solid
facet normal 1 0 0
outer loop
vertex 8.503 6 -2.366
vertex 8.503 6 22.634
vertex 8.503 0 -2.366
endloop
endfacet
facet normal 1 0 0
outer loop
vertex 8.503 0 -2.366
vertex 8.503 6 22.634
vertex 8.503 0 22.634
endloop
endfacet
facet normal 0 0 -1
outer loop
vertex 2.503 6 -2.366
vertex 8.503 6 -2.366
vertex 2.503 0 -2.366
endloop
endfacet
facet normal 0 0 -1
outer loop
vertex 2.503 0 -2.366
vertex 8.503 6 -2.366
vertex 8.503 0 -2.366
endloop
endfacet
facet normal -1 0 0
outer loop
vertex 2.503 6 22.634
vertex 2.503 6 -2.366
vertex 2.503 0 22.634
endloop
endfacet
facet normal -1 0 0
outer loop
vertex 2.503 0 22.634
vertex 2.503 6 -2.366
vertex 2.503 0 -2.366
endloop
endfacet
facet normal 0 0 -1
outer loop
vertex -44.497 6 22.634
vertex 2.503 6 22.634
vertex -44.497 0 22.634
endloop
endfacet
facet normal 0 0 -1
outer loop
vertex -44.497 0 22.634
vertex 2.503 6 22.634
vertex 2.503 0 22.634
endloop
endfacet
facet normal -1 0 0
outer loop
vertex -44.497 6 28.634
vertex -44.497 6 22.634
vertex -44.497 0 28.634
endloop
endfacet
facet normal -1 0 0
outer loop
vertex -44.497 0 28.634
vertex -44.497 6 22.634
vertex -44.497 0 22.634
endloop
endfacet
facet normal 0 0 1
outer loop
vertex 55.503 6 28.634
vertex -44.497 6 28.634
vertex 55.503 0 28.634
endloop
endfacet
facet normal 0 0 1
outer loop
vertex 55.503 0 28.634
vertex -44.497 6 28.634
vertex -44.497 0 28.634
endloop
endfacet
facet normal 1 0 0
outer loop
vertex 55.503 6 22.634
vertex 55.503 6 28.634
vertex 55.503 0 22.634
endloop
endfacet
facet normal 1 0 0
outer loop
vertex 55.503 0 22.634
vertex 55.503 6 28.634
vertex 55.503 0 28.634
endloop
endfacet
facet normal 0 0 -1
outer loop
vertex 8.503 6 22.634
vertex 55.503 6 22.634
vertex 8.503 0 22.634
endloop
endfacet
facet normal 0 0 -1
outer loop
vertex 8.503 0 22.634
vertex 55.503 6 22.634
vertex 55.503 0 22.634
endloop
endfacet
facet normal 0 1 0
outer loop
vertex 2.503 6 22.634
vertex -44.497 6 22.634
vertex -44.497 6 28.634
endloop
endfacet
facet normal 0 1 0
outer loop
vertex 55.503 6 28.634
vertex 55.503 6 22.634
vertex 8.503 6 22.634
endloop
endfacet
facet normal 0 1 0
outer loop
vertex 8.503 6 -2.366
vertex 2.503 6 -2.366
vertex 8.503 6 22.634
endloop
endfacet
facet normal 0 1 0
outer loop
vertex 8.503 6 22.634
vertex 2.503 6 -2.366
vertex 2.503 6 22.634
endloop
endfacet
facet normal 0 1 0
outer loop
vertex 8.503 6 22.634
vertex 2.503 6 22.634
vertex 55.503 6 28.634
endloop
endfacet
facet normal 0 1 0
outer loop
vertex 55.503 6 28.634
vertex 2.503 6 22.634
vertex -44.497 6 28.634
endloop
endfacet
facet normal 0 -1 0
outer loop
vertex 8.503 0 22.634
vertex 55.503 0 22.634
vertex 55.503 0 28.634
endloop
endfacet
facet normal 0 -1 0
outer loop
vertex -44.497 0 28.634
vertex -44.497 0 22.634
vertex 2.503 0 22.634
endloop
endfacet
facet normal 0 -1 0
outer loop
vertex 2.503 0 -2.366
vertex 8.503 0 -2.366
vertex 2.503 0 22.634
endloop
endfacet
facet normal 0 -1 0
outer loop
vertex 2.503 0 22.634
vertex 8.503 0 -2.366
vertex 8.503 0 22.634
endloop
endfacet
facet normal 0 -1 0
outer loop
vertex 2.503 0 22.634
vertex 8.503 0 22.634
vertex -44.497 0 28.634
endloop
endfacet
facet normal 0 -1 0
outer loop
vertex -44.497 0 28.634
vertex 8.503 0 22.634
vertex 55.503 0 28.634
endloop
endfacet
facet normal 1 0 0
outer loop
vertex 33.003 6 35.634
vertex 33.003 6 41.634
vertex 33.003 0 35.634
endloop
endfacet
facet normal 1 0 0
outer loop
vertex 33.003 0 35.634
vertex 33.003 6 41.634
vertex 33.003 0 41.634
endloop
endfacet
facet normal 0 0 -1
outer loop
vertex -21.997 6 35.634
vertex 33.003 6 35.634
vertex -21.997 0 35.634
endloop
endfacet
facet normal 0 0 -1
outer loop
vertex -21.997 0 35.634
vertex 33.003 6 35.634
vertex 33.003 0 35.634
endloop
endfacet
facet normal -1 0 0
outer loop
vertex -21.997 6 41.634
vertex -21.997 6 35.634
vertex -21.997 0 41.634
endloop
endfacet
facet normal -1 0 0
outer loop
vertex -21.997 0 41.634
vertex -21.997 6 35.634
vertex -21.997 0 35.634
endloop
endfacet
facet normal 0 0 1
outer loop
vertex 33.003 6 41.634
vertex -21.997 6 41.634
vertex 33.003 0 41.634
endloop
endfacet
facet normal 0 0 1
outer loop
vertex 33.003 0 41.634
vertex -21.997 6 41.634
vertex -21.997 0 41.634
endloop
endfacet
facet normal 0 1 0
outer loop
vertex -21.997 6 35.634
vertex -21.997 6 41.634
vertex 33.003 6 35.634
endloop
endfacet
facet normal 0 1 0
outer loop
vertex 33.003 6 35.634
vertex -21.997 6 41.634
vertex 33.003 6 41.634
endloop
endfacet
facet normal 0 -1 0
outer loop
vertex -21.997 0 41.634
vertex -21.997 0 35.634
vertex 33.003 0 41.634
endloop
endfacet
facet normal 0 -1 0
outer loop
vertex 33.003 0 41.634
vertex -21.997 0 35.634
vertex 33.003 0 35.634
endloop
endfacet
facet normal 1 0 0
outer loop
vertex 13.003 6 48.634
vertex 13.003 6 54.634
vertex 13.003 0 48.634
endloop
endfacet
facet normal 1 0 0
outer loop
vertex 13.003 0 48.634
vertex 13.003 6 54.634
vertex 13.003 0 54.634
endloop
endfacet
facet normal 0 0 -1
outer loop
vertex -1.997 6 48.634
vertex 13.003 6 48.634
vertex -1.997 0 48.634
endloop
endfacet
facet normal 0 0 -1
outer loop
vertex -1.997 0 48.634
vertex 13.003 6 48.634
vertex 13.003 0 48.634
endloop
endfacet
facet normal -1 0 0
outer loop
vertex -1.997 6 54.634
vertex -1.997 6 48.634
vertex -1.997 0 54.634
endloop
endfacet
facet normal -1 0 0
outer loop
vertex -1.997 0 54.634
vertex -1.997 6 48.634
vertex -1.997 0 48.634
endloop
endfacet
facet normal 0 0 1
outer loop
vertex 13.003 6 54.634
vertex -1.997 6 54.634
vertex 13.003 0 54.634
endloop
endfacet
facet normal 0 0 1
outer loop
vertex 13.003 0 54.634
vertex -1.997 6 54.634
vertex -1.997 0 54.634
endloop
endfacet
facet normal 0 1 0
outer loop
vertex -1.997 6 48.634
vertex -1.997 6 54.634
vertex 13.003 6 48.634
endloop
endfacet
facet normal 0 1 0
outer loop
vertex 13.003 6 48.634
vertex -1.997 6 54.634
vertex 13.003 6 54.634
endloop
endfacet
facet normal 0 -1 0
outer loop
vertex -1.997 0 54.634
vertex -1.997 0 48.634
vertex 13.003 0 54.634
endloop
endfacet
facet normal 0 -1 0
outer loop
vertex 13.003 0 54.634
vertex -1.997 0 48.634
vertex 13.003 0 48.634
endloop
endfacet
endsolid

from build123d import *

# Parameters (mm, degrees)
SKETCH1_W           = 6
SKETCH1_H           = 25
SKETCH1_W_2         = 55
SKETCH1_H_2         = 6
SKETCH1_W_3         = 15
BOSS_EXTRUDE2_DEPTH = 6


with BuildPart() as part:
    # Sketch1 → Boss-Extrude2 (new body)
    with BuildSketch(Plane(origin=(0, 0, 0), x_dir=(1, 0, 0), z_dir=(0, 1, 0))):
        with Locations((5.502552118, -10.133739965)):
            Rectangle(SKETCH1_W, SKETCH1_H)
        Polygon((8.502552118, -22.633739965), (2.502552118, -22.633739965), (-44.497447882, -22.633739965), (-44.497447882, -28.633739965), (55.502552118, -28.633739965), (55.502552118, -22.633739965), align=None)
        with Locations((5.502552118, -38.633739965)):
            Rectangle(SKETCH1_W_2, SKETCH1_H_2)
        with Locations((5.502552118, -51.633739965)):
            Rectangle(SKETCH1_W_3, SKETCH1_H_2)
    extrude(amount=BOSS_EXTRUDE2_DEPTH)


solid = part.part
